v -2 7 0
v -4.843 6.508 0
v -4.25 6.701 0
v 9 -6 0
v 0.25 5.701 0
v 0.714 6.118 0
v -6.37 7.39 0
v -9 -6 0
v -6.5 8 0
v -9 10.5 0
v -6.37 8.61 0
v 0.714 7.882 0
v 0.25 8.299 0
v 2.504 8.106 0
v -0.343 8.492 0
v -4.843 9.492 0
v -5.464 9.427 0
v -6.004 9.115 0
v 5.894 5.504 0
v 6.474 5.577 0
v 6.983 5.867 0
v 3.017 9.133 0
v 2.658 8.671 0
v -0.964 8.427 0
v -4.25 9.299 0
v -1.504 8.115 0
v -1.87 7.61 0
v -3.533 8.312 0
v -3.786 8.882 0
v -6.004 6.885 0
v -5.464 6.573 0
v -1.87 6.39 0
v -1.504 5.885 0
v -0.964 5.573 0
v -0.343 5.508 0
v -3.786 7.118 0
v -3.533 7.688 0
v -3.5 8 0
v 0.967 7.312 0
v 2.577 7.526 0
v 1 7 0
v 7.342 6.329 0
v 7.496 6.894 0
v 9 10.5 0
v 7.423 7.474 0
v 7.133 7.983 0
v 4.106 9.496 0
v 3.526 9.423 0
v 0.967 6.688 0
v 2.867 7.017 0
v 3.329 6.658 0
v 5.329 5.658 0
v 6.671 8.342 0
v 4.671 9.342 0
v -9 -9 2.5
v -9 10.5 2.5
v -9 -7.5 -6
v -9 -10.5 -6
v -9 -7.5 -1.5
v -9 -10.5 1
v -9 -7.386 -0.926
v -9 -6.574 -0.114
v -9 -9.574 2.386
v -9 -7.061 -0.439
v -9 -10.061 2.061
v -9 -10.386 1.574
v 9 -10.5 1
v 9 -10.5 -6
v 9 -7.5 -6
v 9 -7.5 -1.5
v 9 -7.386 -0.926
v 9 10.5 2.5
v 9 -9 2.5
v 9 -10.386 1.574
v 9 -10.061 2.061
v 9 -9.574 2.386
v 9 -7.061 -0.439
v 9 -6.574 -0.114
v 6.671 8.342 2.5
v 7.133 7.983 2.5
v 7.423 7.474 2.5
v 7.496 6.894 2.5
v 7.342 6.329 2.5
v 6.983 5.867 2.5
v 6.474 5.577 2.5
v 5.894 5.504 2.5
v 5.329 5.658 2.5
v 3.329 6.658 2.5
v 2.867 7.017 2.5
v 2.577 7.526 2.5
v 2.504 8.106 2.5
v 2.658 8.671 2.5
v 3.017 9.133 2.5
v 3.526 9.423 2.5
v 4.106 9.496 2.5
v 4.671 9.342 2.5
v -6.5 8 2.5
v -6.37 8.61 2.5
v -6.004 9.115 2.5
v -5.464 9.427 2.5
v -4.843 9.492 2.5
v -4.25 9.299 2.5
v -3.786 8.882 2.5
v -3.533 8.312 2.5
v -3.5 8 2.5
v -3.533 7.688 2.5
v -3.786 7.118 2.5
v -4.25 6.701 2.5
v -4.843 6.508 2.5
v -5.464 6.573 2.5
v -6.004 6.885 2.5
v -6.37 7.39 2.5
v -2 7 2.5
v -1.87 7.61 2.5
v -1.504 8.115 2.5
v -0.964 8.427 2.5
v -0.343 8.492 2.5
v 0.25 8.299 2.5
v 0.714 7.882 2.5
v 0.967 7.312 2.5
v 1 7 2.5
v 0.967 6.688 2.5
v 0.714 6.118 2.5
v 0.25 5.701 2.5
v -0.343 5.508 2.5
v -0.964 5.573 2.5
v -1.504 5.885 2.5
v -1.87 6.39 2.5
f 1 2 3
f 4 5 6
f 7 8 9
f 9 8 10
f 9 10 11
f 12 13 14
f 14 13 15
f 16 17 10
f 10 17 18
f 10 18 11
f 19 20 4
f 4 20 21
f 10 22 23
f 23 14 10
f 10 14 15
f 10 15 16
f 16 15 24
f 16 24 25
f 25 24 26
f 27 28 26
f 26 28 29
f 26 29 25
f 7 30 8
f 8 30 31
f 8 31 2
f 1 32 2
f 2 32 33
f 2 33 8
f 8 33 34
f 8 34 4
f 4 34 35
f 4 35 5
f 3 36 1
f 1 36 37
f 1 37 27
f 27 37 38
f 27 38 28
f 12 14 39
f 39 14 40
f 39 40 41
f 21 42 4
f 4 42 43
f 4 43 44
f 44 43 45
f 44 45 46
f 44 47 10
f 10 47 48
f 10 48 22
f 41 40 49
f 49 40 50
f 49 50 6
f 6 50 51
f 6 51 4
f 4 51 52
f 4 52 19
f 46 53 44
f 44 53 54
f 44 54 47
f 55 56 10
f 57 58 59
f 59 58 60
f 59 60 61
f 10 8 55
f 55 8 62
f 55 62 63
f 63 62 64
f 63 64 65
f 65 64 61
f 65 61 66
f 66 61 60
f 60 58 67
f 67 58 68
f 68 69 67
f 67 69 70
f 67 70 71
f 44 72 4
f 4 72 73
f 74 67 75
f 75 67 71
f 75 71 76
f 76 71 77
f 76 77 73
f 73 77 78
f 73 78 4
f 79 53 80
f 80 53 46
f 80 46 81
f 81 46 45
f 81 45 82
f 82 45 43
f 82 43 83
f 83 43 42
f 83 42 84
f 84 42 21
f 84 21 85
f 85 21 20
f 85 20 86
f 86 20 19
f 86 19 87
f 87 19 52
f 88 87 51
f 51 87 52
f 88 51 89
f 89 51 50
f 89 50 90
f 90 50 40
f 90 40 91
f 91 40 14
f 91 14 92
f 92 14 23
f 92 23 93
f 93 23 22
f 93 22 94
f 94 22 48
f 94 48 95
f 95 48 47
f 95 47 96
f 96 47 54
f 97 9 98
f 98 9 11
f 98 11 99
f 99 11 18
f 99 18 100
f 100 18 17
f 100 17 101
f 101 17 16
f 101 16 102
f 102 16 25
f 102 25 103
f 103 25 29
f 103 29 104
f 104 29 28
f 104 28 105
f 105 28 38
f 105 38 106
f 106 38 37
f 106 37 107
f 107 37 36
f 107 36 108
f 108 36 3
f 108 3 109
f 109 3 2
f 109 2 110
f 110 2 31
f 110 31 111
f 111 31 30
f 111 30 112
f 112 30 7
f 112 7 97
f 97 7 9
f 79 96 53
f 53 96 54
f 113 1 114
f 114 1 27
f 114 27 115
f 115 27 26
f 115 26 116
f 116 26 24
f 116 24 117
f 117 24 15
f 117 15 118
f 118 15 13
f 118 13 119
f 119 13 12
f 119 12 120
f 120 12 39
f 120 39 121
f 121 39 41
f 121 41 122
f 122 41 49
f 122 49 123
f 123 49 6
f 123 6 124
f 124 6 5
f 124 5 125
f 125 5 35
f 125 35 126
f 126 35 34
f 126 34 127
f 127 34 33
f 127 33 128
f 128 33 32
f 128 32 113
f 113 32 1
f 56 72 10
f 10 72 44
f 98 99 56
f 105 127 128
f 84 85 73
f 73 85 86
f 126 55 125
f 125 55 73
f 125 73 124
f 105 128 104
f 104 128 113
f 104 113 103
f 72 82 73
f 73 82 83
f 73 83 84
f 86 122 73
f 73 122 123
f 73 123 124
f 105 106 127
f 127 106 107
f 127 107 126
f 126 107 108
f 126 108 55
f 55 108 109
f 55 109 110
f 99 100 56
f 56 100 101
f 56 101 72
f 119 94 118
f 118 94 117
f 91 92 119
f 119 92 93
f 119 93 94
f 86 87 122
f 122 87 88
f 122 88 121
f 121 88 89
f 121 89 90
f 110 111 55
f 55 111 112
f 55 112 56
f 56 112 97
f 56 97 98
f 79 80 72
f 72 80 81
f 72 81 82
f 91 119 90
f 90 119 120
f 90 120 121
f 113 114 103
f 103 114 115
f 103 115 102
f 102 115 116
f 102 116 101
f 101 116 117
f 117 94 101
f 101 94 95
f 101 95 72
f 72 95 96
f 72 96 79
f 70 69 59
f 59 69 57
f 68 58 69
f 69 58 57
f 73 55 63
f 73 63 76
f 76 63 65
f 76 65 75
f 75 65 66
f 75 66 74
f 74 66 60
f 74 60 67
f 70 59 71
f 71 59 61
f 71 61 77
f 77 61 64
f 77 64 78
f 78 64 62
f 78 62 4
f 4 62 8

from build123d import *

# Parameters (mm, degrees)
SKETCH1_W           = 18
SKETCH1_H           = 21
SKETCH1_R           = 1.5
BOSS_EXTRUDE1_DEPTH = 2.5
SKETCH1_3_W         = 18
SKETCH1_3_H         = 3
BOSS_EXTRUDE2_DEPTH = 6
FILLET1_R           = 1.5


with BuildPart() as part:
    # Sketch1 → Boss-Extrude1 (new body)
    with BuildSketch(Plane.XY):
        Rectangle(SKETCH1_W, SKETCH1_H)
        with Locations((-5, 8)):
            Circle(SKETCH1_R, mode=Mode.SUBTRACT)
        with Locations((-0.5, 7)):
            Circle(SKETCH1_R, mode=Mode.SUBTRACT)
        with BuildLine():
            ThreePointArc((3.329179607, 6.658359214), (2.658359214, 8.670820393), (4.670820393, 9.341640786))
            Line((4.670820393, 9.341640786), (6.670820393, 8.341640786))
            ThreePointArc((6.670820393, 8.341640786), (7.341640786, 6.329179607), (5.329179607, 5.658359214))
            Line((5.329179607, 5.658359214), (3.329179607, 6.658359214))
        make_face(mode=Mode.SUBTRACT)
    extrude(amount=BOSS_EXTRUDE1_DEPTH)

    # Sketch1<3> → Boss-Extrude2 (add)
    with BuildSketch(Plane.XY):
        with Locations((0, -9)):
            Rectangle(SKETCH1_3_W, SKETCH1_3_H)
    extrude(amount=-BOSS_EXTRUDE2_DEPTH)

    # Fillet1
    fillet1_edges = [part.edges().sort_by_distance(p)[0] for p in [
        (0, -10.5, 2.5),
        (0, -7.5, 0),
    ]]
    fillet(fillet1_edges, radius=FILLET1_R)


solid = part.part
